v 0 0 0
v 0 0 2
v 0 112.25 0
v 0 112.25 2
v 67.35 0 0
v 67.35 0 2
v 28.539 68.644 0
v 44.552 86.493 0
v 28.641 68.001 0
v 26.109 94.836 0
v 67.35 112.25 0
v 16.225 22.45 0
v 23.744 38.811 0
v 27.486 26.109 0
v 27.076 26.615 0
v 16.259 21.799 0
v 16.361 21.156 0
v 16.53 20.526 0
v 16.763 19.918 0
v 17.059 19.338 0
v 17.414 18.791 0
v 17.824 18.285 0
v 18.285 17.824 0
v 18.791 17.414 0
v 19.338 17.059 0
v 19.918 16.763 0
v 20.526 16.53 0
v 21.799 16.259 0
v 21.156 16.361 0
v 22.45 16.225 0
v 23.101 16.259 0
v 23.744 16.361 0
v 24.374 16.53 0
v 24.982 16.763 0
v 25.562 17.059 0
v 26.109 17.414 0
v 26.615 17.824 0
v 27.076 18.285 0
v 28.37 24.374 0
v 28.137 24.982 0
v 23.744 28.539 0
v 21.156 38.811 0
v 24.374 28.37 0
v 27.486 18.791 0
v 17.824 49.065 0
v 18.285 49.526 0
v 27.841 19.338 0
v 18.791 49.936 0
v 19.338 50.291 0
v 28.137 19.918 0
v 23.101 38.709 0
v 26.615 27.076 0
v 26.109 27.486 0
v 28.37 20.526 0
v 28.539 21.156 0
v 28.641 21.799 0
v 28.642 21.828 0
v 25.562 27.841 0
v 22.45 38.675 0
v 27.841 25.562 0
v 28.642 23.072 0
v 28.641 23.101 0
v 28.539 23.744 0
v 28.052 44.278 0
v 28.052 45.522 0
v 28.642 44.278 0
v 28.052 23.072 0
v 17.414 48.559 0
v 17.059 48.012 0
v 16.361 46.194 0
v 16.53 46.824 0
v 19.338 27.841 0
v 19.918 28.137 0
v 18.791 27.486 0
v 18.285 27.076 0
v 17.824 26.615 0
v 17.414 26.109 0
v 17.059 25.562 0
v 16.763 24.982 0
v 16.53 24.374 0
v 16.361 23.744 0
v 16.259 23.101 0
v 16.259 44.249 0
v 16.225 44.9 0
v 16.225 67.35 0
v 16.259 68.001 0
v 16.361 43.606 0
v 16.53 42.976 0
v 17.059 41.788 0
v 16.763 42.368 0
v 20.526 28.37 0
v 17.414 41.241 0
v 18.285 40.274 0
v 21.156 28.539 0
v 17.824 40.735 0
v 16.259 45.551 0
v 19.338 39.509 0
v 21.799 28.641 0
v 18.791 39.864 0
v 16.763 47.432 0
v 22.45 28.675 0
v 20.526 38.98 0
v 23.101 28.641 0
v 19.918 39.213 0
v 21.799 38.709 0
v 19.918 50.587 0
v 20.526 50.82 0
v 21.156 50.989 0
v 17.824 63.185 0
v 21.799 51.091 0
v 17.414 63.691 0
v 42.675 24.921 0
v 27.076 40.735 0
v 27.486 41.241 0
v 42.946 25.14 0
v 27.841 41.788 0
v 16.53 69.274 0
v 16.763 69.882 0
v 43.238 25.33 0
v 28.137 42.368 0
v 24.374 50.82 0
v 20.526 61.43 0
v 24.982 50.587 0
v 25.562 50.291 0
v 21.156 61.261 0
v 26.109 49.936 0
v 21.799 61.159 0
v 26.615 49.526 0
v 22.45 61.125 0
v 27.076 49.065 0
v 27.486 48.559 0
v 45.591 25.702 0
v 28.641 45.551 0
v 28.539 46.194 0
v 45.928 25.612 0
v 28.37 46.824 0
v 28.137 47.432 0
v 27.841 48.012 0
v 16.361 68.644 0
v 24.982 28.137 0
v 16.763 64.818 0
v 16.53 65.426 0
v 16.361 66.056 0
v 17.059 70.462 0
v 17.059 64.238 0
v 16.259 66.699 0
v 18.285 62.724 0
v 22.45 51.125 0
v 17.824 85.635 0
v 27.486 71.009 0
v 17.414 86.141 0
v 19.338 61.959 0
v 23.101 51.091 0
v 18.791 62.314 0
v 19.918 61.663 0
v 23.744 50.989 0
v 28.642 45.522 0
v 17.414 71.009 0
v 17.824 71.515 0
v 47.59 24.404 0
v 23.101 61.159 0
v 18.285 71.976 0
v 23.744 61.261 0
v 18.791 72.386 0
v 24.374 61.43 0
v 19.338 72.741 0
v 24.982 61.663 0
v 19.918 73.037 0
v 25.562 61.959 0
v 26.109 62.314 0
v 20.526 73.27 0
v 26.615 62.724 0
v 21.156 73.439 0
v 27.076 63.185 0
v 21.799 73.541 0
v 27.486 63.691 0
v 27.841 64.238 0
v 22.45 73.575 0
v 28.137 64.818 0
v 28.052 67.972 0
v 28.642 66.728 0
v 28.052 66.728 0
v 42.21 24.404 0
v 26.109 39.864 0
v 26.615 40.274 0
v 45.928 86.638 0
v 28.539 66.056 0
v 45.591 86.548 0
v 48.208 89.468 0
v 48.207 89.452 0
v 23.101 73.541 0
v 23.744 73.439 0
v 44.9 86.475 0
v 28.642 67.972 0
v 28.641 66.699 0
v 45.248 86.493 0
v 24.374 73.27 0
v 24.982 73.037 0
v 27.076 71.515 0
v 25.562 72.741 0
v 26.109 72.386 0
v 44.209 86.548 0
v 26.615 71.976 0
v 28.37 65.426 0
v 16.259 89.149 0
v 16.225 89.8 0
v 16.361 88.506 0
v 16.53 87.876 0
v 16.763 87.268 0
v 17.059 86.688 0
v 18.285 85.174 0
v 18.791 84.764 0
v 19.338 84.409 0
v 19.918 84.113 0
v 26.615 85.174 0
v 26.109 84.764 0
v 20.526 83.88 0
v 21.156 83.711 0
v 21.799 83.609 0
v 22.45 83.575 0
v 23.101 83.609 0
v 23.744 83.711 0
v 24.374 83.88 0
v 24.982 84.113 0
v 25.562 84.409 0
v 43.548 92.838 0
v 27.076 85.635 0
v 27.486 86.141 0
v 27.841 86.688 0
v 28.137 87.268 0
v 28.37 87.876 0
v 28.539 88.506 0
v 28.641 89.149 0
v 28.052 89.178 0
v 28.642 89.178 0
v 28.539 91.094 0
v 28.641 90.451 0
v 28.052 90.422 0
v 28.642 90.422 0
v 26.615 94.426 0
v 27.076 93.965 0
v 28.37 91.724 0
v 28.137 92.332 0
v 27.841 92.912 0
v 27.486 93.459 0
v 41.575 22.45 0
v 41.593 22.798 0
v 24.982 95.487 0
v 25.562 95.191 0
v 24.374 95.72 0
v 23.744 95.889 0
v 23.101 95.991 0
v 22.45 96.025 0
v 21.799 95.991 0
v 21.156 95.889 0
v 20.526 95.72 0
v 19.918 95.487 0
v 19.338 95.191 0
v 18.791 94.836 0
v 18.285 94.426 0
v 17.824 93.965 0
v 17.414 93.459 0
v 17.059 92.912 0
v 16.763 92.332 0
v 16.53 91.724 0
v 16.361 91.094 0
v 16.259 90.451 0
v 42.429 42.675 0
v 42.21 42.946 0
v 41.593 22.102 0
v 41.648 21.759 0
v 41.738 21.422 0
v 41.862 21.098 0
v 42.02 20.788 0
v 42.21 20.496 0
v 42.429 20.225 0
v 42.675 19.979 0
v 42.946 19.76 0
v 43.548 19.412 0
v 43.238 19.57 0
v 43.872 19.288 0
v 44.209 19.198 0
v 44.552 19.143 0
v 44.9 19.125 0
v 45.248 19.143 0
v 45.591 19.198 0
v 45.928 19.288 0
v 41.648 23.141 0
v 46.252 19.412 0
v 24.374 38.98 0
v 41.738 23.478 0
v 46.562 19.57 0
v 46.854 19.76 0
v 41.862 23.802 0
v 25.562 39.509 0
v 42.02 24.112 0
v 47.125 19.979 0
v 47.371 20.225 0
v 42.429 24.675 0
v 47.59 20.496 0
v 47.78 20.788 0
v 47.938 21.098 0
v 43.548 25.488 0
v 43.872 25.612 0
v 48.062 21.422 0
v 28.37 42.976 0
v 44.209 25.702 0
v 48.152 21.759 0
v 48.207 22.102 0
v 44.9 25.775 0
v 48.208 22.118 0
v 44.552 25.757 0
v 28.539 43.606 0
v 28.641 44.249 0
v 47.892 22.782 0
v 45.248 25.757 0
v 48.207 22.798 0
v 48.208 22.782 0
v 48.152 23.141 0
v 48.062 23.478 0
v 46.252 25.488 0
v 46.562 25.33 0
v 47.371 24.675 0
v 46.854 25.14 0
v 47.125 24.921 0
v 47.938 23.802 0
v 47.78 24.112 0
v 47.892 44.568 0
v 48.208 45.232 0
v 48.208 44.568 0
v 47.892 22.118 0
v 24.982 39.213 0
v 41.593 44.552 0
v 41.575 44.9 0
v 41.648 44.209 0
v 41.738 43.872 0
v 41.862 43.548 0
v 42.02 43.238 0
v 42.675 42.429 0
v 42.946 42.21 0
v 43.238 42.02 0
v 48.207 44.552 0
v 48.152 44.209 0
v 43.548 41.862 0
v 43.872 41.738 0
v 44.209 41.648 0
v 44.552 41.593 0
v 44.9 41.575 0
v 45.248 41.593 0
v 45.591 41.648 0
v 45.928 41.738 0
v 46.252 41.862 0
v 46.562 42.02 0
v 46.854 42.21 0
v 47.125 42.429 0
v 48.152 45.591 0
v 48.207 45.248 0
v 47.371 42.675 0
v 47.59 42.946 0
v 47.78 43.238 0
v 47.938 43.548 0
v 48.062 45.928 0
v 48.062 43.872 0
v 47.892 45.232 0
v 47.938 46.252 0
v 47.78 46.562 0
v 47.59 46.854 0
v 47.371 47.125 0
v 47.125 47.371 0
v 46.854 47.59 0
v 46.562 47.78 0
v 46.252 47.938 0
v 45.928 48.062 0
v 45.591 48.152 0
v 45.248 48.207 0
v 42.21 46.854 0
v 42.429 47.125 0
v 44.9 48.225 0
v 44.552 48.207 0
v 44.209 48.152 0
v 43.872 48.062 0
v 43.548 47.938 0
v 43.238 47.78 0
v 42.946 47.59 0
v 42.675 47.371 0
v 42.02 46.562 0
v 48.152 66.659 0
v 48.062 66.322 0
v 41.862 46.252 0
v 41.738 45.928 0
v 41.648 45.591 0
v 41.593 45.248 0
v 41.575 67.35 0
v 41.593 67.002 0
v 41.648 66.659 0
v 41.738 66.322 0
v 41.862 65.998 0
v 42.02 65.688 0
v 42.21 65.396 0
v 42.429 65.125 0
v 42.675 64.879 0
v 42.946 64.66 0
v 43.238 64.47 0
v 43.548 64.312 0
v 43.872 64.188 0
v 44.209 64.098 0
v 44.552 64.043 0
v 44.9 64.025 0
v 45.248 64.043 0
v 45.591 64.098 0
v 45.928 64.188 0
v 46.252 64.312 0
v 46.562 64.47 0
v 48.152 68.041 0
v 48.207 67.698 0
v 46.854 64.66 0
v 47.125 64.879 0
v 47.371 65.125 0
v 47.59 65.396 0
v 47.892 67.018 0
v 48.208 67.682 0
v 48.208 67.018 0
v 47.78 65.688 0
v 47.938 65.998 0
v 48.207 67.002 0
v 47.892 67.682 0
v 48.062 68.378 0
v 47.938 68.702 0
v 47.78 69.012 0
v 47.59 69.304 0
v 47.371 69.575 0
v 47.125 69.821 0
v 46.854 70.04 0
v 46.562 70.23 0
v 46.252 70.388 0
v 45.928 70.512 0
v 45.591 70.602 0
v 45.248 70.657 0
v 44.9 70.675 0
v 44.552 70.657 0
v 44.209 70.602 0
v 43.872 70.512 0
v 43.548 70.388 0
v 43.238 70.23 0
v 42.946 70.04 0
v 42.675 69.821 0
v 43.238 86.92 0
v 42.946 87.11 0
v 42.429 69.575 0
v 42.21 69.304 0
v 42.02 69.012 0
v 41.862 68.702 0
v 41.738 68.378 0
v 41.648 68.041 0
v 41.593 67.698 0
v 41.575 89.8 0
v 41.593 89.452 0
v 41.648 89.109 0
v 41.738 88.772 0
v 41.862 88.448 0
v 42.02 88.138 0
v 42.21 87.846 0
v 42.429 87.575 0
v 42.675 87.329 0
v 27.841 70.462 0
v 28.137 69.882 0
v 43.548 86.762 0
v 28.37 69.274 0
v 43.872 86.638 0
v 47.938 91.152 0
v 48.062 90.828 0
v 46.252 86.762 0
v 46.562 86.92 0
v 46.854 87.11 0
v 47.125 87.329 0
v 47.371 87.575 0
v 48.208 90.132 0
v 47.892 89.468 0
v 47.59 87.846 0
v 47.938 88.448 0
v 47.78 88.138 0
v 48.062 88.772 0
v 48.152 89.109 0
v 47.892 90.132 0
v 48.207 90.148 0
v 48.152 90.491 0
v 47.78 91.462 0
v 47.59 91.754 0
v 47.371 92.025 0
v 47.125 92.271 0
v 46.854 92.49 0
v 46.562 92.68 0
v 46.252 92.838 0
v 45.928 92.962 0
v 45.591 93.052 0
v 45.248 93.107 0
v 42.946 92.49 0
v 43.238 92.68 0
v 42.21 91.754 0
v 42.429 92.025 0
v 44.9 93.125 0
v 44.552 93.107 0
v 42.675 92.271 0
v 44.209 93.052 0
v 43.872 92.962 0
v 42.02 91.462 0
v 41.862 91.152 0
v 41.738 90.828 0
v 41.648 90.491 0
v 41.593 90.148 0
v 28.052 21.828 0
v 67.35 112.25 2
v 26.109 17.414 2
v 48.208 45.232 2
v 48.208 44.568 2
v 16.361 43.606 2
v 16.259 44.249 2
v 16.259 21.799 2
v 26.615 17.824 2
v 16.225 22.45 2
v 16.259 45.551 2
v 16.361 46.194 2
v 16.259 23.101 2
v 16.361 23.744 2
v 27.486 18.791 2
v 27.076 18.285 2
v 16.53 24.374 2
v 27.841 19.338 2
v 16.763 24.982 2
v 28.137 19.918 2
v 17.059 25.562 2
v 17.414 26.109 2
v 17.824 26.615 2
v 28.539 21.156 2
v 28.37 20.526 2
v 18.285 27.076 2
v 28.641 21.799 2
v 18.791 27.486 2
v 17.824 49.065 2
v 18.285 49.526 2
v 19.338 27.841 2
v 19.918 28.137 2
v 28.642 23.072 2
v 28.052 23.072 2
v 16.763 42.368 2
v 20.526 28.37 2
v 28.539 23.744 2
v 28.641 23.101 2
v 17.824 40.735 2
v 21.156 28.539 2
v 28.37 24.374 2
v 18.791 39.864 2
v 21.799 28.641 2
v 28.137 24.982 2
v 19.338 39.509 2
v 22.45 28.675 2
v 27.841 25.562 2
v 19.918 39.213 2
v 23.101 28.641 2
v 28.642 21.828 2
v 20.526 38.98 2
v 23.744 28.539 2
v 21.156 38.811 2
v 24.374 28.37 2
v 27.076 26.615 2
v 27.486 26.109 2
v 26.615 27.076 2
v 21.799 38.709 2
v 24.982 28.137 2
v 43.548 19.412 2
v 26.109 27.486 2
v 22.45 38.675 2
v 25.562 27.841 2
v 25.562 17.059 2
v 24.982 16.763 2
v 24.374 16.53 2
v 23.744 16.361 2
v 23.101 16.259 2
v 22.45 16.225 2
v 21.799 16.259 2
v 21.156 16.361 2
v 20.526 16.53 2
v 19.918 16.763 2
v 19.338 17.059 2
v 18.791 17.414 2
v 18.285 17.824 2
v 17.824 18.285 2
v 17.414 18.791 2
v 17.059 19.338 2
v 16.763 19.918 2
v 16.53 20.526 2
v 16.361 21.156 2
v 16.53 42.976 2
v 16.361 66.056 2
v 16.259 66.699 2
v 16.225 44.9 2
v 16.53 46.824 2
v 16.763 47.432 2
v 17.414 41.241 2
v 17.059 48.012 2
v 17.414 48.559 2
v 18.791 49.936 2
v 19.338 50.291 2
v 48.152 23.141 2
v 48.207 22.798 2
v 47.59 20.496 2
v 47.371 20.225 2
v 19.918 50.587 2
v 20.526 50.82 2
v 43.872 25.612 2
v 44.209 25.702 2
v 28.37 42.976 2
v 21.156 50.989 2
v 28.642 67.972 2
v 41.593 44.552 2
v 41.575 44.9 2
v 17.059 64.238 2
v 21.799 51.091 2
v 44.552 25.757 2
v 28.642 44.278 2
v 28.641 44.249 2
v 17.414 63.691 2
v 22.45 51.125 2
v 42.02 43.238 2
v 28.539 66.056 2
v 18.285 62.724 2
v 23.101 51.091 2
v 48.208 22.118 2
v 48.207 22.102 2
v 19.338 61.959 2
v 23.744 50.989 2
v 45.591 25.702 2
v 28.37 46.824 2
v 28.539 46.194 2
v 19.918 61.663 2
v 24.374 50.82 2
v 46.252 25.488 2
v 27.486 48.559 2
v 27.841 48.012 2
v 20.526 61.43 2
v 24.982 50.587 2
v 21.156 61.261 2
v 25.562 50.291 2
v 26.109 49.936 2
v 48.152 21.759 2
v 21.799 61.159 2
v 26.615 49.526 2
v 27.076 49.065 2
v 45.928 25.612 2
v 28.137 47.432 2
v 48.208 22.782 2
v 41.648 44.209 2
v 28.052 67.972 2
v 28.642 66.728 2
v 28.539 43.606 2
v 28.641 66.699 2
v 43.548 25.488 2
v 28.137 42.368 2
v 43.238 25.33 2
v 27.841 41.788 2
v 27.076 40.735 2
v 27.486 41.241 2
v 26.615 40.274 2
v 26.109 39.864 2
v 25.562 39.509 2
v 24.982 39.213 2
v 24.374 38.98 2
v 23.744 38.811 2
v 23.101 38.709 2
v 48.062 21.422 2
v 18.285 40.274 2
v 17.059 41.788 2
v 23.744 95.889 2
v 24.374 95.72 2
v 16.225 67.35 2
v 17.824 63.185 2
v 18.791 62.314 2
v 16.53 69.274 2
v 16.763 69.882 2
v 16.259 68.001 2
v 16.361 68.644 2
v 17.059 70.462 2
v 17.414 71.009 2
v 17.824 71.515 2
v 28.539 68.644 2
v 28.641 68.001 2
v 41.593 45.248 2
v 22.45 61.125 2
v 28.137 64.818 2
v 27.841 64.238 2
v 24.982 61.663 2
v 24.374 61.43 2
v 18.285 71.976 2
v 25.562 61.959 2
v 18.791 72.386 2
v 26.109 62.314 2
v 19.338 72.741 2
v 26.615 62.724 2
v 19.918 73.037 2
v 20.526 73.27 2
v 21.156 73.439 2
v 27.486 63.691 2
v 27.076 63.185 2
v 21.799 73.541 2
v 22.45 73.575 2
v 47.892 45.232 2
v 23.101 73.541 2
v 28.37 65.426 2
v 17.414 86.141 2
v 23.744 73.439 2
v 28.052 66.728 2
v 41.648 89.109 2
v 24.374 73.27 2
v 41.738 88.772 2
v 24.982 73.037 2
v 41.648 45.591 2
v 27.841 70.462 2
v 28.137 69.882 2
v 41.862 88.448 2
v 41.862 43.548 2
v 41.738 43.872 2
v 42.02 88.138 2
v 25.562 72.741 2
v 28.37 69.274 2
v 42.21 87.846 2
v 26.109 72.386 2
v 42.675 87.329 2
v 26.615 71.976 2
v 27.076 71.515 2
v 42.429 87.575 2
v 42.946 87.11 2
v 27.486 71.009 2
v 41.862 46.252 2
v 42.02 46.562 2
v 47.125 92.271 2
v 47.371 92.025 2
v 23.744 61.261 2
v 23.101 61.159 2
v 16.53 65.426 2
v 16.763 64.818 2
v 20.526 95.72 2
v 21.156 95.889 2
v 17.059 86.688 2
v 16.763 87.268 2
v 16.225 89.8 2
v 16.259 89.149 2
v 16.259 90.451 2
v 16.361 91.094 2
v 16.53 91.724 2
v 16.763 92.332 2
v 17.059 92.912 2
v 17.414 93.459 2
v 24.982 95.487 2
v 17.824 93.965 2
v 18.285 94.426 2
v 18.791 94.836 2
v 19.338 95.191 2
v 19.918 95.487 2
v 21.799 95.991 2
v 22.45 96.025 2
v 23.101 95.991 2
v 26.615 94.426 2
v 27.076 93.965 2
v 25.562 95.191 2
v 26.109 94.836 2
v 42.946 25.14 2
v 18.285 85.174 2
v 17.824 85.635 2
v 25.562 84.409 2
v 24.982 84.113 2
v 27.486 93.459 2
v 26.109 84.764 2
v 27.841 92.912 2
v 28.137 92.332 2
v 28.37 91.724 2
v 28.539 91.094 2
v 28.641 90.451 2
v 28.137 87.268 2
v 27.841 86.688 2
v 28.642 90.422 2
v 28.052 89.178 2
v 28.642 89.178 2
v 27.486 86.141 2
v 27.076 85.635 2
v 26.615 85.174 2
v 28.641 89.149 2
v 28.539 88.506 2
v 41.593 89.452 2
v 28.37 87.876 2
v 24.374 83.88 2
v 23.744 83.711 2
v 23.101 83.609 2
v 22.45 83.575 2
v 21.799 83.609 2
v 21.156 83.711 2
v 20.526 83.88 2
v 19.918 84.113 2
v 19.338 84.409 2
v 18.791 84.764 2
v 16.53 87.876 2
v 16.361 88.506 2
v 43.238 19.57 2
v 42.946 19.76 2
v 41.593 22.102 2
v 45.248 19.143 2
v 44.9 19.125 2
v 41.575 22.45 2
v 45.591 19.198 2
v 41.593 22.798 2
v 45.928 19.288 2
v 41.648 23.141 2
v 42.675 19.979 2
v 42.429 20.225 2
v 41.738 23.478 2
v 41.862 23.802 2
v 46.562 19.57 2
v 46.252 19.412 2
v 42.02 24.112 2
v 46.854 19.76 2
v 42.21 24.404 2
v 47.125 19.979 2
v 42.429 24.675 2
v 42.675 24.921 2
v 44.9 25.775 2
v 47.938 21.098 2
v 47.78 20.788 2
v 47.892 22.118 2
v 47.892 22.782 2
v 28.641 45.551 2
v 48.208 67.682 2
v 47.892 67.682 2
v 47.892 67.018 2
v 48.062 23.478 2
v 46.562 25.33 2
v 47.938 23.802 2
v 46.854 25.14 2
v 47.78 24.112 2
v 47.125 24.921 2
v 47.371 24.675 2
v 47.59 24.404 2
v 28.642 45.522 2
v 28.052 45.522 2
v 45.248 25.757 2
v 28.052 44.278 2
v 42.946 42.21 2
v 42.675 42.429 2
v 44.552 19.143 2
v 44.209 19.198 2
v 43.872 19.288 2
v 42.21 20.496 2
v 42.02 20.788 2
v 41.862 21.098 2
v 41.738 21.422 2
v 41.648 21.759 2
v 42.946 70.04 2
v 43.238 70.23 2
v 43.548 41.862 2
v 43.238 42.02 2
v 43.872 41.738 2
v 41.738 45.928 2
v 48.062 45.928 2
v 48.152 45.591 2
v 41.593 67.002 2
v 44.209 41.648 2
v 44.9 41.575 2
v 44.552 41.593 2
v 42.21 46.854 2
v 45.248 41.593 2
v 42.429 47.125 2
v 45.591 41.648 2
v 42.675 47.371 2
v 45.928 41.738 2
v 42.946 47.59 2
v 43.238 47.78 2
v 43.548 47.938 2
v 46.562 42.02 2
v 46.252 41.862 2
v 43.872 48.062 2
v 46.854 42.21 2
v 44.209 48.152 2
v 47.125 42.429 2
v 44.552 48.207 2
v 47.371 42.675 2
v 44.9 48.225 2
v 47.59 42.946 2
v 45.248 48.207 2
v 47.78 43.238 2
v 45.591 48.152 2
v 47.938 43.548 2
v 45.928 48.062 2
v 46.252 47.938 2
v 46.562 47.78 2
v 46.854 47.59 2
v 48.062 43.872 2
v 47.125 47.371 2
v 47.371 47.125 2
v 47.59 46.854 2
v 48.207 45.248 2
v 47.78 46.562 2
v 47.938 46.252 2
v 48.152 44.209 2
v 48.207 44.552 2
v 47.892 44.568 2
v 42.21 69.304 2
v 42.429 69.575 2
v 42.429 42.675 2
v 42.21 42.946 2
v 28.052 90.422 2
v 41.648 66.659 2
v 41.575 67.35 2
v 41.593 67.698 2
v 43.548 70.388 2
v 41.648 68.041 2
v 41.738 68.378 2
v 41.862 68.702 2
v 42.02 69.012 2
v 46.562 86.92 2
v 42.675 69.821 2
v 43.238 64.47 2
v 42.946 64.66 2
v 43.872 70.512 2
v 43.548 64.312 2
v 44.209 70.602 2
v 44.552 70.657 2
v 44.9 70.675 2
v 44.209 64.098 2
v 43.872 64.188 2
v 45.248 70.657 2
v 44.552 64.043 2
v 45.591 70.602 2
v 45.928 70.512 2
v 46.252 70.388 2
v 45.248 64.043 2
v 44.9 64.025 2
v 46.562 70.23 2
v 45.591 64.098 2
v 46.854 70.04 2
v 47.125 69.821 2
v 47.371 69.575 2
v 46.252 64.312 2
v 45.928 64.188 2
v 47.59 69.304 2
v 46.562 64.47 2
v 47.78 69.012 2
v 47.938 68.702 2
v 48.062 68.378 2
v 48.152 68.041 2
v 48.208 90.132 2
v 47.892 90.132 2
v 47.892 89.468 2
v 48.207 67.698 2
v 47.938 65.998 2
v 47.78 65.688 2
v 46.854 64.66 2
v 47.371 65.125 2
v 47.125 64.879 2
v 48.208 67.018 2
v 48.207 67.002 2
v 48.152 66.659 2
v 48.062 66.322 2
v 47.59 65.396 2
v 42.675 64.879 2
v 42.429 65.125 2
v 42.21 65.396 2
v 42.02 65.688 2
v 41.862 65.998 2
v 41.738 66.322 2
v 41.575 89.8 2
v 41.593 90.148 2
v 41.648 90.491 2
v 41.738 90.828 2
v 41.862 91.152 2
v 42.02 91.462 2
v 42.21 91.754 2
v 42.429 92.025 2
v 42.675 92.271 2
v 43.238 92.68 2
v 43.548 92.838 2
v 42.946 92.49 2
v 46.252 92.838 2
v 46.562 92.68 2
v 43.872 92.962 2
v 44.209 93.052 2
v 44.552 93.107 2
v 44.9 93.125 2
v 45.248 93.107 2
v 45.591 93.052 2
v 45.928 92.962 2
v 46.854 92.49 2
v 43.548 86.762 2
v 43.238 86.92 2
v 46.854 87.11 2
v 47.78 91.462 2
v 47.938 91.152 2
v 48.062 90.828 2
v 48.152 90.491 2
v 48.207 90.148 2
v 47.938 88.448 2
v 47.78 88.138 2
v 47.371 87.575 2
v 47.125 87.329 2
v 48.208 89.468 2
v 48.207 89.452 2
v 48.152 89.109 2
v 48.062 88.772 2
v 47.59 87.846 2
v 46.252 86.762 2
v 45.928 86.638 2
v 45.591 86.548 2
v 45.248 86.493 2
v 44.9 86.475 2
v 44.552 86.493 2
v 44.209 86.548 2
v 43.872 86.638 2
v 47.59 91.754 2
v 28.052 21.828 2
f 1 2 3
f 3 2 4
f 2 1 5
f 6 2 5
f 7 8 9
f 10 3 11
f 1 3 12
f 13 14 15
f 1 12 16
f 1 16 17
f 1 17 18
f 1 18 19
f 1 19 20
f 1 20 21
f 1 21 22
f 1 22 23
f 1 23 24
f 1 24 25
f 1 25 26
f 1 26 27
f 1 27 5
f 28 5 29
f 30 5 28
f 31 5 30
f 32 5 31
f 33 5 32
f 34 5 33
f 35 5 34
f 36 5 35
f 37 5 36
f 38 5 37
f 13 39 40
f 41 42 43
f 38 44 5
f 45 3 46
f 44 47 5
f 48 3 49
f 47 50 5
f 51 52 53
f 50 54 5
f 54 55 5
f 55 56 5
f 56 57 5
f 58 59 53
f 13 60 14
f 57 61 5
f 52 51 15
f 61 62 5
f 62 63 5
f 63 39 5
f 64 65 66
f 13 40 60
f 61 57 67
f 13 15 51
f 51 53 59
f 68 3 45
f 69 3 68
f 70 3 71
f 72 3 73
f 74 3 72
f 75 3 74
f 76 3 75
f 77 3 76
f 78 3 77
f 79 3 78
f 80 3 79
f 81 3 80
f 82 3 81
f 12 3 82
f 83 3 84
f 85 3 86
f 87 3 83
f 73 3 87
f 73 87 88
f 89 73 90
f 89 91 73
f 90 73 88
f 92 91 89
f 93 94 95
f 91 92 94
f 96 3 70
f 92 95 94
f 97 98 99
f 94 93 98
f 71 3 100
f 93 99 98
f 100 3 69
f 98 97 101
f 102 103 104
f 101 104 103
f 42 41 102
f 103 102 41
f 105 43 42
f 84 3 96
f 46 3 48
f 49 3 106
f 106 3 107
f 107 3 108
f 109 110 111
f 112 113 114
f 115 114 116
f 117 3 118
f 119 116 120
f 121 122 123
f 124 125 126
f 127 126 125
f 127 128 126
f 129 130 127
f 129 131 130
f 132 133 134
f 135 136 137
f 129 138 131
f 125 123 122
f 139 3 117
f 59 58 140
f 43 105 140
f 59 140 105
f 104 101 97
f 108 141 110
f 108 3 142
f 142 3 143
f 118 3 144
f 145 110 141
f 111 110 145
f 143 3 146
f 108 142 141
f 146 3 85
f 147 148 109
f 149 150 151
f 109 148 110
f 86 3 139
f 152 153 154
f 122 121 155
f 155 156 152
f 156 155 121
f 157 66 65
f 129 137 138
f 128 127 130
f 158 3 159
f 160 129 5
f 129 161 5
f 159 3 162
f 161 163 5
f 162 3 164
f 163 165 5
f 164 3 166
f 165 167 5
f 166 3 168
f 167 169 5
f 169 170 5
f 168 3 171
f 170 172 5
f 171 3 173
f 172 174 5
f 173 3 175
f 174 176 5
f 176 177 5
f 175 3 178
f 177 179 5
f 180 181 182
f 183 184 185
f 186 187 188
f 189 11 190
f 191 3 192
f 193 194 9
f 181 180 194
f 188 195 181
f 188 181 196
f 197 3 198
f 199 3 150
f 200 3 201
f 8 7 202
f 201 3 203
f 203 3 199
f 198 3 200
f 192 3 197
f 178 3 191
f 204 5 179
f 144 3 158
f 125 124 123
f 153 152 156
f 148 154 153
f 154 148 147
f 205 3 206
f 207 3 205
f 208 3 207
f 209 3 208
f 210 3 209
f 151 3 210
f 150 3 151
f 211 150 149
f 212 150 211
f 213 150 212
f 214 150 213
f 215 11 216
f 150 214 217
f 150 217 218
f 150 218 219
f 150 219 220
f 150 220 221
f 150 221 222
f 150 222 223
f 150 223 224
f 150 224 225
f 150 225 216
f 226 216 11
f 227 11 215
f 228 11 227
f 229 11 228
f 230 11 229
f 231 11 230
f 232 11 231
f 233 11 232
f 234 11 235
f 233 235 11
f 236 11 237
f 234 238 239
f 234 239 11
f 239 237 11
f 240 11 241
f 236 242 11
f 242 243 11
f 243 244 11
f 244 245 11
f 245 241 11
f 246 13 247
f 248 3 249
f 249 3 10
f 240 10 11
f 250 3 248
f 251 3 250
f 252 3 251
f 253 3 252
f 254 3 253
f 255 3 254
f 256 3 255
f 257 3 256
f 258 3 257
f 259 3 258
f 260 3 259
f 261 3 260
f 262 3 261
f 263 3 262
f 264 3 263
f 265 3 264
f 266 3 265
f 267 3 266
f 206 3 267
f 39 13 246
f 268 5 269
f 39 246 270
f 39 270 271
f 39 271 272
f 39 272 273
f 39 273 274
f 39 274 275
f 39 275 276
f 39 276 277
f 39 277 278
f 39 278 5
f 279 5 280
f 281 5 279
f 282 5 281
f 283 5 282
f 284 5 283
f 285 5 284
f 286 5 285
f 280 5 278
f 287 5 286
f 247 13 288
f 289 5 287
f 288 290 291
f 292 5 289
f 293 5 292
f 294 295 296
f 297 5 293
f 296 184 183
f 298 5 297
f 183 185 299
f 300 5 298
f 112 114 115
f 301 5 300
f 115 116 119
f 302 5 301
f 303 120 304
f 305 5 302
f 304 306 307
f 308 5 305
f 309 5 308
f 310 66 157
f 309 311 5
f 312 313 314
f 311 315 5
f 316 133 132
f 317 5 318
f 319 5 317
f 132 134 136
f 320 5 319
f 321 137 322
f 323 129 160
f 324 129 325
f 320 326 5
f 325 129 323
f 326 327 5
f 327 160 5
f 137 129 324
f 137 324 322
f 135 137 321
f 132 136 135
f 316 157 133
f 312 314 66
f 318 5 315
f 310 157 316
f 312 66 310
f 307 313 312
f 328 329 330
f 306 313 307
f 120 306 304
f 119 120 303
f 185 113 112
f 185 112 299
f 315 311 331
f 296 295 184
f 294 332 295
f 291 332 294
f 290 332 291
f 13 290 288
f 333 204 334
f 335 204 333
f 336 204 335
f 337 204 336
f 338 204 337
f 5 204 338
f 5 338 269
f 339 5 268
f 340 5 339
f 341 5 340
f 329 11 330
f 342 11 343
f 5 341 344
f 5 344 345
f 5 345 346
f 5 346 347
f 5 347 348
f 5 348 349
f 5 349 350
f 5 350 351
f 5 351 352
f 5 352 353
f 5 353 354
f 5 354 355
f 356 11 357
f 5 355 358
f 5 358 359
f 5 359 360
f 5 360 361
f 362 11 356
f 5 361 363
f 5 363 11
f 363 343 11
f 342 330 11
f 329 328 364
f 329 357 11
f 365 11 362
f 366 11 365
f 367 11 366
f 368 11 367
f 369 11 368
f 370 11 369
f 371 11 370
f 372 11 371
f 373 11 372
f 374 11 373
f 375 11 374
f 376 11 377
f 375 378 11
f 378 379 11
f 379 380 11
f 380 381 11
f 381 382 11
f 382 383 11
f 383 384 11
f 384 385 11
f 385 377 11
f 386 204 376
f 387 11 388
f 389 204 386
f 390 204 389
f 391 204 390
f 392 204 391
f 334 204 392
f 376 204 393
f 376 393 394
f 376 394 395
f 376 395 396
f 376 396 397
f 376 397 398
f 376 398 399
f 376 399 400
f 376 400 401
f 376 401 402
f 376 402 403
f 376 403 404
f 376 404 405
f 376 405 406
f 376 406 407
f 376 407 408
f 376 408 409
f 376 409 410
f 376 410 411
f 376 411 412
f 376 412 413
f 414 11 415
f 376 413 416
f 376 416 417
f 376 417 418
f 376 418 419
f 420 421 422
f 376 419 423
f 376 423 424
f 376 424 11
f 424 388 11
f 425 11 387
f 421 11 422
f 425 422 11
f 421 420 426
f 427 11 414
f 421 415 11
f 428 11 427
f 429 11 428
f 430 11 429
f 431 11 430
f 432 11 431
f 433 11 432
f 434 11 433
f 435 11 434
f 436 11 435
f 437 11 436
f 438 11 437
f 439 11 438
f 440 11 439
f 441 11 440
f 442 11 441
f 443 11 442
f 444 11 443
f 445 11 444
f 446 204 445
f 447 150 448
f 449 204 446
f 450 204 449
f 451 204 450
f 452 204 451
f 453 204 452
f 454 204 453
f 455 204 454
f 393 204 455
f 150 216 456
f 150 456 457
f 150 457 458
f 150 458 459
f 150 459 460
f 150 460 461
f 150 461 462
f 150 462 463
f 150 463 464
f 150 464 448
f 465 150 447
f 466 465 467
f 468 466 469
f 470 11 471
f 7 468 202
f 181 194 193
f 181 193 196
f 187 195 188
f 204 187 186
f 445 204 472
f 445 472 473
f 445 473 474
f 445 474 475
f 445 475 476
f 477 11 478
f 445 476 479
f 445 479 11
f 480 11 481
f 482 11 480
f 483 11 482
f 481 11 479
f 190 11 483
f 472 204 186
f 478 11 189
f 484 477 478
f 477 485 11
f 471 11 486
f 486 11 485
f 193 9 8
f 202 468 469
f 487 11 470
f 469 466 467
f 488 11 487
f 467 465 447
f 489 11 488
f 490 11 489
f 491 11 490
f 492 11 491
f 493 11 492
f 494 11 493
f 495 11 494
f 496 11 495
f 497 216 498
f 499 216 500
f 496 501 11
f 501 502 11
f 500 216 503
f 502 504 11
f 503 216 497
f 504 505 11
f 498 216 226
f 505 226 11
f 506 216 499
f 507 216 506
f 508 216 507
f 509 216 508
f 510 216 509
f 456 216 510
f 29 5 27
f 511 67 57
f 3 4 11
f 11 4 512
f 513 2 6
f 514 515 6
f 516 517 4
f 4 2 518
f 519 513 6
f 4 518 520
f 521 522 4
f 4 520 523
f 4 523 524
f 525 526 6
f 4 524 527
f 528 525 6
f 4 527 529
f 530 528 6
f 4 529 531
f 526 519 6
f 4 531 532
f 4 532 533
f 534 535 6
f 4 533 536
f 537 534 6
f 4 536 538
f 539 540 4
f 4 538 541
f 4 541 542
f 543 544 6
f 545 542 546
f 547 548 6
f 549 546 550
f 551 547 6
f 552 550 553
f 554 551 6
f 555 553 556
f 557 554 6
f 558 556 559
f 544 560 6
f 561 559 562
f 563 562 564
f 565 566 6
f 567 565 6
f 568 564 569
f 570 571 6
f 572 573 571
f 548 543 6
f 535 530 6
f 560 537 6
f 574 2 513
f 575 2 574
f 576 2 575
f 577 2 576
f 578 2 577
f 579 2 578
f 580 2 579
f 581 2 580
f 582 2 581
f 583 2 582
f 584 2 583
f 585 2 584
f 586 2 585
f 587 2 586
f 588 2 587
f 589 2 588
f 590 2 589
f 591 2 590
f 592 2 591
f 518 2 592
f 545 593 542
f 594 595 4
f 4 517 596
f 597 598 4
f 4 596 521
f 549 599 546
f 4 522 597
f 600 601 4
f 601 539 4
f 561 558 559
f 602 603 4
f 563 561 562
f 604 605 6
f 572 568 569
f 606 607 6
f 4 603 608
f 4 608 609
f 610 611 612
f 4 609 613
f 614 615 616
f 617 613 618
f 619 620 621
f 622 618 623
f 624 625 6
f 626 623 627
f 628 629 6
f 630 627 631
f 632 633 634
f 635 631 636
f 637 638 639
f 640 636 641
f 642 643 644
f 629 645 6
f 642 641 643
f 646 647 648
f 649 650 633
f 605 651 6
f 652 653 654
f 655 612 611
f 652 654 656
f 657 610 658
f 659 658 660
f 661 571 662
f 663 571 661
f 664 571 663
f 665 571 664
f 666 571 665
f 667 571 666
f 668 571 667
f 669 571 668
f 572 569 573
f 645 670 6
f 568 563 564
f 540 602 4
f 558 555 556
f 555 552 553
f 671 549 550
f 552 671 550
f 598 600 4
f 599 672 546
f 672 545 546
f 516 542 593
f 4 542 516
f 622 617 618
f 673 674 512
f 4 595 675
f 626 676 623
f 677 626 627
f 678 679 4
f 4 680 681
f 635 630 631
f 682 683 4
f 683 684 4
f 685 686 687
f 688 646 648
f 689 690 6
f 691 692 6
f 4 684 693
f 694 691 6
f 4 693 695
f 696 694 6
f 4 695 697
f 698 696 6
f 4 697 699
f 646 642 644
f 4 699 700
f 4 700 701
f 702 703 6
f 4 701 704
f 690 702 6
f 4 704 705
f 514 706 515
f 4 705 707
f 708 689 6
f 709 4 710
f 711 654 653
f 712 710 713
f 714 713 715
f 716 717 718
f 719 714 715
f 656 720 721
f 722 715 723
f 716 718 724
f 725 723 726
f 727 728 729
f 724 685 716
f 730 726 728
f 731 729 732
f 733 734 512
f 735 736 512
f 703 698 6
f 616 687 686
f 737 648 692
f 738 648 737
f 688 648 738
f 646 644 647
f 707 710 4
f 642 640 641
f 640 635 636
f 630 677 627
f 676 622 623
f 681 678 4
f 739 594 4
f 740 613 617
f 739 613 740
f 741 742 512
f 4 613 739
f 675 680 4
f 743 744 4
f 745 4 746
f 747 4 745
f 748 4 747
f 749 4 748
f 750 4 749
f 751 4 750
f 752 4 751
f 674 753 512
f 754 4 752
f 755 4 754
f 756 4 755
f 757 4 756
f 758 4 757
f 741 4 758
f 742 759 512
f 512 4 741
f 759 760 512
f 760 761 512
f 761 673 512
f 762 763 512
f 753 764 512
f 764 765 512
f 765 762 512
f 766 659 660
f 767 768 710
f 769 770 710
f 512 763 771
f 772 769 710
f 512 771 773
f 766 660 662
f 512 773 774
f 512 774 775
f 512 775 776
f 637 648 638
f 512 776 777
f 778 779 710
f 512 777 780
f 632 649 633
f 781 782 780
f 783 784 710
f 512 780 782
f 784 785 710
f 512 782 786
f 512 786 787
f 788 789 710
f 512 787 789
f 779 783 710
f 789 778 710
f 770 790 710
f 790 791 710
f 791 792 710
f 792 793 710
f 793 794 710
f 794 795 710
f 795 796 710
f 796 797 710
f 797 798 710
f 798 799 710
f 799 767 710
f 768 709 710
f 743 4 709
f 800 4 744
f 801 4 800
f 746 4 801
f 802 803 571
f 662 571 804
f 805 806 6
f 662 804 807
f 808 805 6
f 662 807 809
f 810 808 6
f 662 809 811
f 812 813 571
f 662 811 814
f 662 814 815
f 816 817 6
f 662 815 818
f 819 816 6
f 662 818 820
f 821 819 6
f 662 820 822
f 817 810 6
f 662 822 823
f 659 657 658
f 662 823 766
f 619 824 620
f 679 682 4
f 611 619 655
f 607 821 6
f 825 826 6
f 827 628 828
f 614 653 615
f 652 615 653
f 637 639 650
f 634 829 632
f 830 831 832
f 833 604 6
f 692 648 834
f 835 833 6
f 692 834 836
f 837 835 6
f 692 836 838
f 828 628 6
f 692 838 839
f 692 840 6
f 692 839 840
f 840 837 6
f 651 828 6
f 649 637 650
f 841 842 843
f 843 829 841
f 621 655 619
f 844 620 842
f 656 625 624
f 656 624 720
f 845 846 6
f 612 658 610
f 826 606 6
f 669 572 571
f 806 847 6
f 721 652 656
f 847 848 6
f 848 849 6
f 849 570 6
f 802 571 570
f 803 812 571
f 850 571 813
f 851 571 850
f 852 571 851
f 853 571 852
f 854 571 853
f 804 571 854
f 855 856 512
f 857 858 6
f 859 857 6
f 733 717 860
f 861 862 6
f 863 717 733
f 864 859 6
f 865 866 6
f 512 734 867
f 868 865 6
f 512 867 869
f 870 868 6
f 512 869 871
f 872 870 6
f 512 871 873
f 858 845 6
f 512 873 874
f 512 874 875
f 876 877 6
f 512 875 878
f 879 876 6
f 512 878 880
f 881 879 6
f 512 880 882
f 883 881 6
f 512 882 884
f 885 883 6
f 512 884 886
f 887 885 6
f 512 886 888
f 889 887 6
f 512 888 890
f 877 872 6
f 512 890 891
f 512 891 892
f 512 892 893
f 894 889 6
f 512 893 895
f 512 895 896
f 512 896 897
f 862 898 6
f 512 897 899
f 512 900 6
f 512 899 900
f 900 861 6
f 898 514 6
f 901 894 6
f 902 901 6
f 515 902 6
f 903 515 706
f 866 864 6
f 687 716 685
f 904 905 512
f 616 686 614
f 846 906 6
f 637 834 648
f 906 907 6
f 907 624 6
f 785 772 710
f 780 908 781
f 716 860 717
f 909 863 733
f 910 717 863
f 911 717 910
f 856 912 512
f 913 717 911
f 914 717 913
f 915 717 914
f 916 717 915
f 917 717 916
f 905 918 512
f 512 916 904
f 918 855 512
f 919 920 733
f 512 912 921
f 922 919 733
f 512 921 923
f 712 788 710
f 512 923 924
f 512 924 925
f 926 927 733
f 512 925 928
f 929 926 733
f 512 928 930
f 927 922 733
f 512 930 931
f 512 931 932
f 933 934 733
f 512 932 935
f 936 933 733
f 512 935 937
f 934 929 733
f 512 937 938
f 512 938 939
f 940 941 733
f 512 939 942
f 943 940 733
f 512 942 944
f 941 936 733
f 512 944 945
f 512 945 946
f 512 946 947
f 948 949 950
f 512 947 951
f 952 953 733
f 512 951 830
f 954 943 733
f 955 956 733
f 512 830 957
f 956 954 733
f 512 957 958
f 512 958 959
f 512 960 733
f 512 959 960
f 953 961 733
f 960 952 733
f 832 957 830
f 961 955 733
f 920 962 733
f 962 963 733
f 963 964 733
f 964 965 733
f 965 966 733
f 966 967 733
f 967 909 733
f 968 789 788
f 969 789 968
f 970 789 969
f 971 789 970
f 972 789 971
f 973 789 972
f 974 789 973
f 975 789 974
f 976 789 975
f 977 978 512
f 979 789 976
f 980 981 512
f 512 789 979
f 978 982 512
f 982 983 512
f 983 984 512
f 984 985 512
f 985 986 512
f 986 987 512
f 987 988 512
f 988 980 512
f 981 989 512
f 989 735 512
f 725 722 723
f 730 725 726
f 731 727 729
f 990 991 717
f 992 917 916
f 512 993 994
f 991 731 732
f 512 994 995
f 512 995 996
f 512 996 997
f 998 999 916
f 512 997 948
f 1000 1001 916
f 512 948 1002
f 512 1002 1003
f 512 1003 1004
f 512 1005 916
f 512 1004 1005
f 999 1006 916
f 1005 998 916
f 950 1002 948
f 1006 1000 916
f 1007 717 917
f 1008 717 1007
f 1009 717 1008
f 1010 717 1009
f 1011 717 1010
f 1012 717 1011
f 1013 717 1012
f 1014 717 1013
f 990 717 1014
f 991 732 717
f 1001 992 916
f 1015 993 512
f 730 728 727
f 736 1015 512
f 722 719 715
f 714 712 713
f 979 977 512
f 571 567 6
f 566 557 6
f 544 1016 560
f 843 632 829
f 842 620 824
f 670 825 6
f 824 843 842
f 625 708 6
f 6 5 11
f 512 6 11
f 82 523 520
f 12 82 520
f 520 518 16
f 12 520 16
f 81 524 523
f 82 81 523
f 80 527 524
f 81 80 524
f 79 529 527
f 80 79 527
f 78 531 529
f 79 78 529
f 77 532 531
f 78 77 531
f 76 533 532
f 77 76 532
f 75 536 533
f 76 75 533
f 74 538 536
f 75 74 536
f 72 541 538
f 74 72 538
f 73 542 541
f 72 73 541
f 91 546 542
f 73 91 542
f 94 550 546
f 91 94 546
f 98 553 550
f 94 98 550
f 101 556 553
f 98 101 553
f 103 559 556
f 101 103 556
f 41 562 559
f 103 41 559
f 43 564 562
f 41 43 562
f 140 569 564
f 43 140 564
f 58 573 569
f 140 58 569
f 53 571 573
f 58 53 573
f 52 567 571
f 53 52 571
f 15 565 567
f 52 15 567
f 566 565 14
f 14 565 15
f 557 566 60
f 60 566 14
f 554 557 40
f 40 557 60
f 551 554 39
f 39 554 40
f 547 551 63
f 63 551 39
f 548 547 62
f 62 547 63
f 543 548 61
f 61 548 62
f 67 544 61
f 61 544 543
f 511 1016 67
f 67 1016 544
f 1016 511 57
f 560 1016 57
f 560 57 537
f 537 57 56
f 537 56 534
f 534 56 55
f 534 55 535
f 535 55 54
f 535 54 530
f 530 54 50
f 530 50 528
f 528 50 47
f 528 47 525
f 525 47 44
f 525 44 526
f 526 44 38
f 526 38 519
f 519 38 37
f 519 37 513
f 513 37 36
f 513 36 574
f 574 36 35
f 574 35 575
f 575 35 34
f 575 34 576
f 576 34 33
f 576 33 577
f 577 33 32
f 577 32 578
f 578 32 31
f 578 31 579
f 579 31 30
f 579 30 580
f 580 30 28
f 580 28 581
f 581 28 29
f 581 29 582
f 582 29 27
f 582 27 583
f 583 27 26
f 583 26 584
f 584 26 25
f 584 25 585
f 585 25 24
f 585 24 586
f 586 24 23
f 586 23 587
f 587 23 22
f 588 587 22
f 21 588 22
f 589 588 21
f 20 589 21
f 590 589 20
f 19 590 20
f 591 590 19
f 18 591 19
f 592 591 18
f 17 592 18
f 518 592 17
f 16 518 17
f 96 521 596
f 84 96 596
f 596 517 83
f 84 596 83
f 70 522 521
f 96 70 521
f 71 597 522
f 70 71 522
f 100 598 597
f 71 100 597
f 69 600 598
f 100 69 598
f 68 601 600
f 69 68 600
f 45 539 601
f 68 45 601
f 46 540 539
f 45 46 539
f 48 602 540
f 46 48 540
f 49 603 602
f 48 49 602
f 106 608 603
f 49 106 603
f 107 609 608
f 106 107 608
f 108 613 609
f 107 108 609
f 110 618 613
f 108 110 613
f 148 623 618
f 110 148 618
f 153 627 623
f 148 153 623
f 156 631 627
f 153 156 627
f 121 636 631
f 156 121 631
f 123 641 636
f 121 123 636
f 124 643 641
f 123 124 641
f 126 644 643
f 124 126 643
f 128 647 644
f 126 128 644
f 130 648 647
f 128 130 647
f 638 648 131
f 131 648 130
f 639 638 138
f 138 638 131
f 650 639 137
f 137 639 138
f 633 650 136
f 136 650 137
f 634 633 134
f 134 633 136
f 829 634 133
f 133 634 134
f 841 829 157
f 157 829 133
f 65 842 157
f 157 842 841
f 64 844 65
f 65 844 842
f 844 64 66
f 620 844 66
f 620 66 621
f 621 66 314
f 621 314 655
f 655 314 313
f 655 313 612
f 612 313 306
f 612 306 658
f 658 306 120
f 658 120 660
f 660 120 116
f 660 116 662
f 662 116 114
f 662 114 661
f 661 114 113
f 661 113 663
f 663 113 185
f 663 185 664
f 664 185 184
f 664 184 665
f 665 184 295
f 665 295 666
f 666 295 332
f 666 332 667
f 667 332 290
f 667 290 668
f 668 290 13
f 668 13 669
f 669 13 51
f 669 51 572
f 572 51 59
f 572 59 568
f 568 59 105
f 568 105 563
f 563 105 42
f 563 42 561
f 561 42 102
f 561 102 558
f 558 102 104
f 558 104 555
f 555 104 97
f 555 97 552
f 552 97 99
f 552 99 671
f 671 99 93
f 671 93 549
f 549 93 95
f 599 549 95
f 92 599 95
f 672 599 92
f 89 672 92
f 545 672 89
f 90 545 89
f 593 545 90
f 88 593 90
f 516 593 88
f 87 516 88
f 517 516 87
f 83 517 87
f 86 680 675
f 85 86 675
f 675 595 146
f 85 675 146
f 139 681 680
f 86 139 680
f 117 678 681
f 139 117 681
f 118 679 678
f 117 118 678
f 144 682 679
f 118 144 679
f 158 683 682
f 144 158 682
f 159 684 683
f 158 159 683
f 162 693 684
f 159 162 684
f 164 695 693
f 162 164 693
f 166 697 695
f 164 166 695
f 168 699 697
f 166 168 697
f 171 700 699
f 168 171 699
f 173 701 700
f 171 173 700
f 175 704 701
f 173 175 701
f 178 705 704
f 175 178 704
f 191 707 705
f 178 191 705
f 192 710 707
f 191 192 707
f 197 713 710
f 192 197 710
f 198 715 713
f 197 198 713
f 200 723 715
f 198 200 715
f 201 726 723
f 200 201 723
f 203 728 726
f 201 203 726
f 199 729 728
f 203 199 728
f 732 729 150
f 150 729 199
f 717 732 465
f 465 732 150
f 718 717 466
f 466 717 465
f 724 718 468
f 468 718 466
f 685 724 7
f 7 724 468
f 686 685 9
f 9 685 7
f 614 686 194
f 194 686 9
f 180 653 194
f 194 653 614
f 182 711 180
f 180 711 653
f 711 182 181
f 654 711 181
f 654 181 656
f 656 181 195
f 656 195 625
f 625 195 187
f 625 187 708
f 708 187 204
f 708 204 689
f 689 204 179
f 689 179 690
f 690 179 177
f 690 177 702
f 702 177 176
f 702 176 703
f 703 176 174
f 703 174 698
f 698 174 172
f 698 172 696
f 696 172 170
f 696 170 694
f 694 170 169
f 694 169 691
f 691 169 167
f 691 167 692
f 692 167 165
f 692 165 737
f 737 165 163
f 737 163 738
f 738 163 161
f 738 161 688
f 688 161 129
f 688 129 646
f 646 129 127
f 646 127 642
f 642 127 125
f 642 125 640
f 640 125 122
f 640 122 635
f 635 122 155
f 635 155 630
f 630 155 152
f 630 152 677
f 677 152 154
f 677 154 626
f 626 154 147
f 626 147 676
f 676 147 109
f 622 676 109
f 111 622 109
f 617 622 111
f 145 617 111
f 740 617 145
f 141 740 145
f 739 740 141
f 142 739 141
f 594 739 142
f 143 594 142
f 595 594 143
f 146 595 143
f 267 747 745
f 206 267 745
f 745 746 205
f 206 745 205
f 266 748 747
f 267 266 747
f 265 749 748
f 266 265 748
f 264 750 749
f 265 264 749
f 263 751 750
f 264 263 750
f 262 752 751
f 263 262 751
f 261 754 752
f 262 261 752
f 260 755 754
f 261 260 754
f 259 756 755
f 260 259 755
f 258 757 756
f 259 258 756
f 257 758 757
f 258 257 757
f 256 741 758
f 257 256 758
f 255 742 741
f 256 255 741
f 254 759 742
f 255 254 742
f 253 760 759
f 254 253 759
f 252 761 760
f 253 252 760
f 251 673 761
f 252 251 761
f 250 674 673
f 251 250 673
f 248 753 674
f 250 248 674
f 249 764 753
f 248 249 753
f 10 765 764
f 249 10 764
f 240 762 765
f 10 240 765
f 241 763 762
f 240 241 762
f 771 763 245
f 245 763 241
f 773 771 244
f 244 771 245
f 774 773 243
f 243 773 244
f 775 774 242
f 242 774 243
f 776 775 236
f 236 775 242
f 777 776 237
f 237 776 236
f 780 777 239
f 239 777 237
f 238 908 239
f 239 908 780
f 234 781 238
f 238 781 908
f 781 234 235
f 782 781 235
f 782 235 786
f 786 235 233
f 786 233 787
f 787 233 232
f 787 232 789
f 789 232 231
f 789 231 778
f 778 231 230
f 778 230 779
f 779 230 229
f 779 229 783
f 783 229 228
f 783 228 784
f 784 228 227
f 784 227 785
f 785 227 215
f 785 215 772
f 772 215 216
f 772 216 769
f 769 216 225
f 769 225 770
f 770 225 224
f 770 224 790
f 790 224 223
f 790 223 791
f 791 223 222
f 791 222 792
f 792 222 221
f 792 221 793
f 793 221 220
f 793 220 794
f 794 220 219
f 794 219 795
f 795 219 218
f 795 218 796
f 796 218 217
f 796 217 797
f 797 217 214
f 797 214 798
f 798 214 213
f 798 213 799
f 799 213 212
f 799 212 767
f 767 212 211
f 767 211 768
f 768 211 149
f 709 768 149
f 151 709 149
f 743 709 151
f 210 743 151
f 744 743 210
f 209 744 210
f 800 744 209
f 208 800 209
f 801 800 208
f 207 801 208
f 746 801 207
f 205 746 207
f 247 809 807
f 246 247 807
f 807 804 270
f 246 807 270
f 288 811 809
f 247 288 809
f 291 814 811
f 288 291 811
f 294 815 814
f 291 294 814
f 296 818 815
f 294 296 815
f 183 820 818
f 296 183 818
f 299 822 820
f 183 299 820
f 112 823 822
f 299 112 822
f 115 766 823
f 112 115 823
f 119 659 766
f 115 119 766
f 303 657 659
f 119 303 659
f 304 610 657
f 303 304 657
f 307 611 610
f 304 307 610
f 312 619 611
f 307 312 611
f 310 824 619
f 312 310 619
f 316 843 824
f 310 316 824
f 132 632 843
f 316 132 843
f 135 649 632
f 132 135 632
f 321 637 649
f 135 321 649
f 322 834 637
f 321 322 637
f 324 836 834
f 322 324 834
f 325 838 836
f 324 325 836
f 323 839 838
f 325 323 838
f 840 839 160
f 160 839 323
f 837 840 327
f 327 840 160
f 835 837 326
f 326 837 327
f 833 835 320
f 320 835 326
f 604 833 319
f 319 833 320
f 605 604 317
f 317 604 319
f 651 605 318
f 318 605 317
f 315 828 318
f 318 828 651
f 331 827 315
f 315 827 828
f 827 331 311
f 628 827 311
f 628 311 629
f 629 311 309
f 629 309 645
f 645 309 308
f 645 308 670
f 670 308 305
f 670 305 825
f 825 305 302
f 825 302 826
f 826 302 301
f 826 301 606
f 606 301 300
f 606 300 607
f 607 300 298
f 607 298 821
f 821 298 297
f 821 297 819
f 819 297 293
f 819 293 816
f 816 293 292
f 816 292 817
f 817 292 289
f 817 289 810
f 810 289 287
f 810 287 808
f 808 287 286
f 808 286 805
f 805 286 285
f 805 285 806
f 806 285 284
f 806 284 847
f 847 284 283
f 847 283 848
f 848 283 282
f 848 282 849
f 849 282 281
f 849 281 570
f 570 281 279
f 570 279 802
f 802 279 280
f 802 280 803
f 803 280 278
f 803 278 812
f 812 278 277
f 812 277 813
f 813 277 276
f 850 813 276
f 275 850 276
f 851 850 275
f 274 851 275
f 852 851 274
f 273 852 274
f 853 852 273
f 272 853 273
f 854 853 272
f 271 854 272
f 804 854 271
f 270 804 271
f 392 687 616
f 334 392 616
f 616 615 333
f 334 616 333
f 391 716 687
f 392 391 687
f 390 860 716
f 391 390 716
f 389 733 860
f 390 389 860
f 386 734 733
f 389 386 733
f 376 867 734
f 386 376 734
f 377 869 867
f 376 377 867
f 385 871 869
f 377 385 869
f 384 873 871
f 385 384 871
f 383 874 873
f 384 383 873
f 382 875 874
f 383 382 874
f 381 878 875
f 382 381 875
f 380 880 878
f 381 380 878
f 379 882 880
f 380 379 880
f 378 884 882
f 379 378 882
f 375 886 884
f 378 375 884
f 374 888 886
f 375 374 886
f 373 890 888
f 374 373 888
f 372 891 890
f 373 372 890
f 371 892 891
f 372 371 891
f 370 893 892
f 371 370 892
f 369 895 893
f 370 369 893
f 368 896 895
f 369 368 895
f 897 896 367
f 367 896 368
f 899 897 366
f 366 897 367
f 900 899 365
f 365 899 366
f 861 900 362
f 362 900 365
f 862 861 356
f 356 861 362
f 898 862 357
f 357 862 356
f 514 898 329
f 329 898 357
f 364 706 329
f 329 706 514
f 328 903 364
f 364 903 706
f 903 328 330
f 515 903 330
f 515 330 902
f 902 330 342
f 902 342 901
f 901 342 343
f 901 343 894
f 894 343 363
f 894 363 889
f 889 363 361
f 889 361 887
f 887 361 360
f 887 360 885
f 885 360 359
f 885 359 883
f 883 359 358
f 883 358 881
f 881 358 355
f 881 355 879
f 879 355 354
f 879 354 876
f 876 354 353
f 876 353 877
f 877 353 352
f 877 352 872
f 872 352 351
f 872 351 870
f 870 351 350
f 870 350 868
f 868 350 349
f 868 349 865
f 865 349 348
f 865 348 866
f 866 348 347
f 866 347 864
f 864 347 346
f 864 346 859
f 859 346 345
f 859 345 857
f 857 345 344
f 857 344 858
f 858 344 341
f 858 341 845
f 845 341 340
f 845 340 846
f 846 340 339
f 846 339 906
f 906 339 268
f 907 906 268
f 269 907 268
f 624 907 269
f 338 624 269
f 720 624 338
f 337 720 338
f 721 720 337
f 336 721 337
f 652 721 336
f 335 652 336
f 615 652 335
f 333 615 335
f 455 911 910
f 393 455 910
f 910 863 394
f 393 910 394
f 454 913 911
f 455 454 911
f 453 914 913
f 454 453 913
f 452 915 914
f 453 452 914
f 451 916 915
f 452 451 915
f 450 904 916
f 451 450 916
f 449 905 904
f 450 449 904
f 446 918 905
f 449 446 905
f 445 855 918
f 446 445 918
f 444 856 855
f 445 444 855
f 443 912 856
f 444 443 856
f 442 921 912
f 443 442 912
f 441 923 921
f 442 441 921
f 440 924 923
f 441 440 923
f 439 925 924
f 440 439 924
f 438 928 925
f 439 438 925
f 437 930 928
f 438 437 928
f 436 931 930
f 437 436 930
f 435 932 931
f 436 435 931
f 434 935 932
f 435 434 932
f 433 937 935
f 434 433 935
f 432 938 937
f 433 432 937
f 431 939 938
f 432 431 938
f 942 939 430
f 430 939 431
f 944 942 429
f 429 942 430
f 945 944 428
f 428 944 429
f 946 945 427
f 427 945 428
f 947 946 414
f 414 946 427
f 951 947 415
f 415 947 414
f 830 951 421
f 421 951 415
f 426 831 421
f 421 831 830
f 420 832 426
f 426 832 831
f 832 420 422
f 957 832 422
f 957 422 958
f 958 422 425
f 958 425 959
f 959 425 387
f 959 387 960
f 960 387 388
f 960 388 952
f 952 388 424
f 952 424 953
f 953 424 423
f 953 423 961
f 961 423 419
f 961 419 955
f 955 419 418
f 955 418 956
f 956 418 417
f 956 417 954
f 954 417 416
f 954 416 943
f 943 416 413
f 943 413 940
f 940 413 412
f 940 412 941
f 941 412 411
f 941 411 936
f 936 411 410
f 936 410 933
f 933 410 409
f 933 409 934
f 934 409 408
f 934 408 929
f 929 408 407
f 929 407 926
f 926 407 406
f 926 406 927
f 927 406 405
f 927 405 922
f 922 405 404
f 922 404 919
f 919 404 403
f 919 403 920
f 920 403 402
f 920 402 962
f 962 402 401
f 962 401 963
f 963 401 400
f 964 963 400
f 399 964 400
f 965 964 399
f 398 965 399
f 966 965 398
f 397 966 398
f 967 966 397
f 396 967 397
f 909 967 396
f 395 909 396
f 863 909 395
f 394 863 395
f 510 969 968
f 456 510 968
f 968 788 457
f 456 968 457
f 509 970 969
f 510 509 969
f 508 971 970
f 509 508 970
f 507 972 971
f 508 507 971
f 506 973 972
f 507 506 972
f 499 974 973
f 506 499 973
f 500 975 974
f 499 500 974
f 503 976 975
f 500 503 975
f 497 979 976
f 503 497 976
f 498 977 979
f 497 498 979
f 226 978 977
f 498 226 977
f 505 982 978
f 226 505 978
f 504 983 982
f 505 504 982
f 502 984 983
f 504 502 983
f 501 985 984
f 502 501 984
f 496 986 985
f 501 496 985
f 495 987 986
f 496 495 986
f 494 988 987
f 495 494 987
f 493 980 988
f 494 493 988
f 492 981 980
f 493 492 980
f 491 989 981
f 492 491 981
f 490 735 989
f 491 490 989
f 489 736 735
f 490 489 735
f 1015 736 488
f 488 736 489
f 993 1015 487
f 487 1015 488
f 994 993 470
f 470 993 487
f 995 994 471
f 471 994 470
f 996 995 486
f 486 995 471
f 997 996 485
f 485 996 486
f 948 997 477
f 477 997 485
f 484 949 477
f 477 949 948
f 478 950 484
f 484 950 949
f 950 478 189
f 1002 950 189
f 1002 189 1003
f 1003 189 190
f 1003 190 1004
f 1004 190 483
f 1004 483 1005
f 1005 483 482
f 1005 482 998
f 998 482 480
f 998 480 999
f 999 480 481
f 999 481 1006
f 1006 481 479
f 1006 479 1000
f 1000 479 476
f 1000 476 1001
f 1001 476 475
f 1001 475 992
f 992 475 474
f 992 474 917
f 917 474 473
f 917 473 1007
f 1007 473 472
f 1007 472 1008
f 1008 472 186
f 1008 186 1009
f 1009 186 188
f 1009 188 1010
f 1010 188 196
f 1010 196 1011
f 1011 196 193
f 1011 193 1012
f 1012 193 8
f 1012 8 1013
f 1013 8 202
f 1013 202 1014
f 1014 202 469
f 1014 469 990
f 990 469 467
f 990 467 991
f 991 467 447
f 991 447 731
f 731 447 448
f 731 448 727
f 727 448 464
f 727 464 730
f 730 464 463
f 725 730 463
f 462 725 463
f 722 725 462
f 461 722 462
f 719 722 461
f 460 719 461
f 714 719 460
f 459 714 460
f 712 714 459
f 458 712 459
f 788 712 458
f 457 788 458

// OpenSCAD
d_small = 6.65;
d_large = 12.45;
t = 2;

l_count = 4;
s_count = 4;
spacing = 10+d_large;

difference() {
  cube([3*spacing, (l_count+1)*spacing, t]);
  for (x=[spacing : spacing : s_count*spacing]) {
    translate([2*spacing, x, -t/2]) switch_hole(d_small/2, 2*t);
  }
  for (x=[spacing : spacing : l_count*spacing]) {
    translate([spacing, x, -t/2]) switch_hole(d_large/2, 2*t);
  }
}

module switch_hole(r_hole, height) {
  d_key = r_hole/5;

  difference() {
    cylinder(r = r_hole, h = height, $fn = 60);
    translate([r_hole, 0, height/2]) cube([d_key, d_key, 2*height], center=true);
  }
}
